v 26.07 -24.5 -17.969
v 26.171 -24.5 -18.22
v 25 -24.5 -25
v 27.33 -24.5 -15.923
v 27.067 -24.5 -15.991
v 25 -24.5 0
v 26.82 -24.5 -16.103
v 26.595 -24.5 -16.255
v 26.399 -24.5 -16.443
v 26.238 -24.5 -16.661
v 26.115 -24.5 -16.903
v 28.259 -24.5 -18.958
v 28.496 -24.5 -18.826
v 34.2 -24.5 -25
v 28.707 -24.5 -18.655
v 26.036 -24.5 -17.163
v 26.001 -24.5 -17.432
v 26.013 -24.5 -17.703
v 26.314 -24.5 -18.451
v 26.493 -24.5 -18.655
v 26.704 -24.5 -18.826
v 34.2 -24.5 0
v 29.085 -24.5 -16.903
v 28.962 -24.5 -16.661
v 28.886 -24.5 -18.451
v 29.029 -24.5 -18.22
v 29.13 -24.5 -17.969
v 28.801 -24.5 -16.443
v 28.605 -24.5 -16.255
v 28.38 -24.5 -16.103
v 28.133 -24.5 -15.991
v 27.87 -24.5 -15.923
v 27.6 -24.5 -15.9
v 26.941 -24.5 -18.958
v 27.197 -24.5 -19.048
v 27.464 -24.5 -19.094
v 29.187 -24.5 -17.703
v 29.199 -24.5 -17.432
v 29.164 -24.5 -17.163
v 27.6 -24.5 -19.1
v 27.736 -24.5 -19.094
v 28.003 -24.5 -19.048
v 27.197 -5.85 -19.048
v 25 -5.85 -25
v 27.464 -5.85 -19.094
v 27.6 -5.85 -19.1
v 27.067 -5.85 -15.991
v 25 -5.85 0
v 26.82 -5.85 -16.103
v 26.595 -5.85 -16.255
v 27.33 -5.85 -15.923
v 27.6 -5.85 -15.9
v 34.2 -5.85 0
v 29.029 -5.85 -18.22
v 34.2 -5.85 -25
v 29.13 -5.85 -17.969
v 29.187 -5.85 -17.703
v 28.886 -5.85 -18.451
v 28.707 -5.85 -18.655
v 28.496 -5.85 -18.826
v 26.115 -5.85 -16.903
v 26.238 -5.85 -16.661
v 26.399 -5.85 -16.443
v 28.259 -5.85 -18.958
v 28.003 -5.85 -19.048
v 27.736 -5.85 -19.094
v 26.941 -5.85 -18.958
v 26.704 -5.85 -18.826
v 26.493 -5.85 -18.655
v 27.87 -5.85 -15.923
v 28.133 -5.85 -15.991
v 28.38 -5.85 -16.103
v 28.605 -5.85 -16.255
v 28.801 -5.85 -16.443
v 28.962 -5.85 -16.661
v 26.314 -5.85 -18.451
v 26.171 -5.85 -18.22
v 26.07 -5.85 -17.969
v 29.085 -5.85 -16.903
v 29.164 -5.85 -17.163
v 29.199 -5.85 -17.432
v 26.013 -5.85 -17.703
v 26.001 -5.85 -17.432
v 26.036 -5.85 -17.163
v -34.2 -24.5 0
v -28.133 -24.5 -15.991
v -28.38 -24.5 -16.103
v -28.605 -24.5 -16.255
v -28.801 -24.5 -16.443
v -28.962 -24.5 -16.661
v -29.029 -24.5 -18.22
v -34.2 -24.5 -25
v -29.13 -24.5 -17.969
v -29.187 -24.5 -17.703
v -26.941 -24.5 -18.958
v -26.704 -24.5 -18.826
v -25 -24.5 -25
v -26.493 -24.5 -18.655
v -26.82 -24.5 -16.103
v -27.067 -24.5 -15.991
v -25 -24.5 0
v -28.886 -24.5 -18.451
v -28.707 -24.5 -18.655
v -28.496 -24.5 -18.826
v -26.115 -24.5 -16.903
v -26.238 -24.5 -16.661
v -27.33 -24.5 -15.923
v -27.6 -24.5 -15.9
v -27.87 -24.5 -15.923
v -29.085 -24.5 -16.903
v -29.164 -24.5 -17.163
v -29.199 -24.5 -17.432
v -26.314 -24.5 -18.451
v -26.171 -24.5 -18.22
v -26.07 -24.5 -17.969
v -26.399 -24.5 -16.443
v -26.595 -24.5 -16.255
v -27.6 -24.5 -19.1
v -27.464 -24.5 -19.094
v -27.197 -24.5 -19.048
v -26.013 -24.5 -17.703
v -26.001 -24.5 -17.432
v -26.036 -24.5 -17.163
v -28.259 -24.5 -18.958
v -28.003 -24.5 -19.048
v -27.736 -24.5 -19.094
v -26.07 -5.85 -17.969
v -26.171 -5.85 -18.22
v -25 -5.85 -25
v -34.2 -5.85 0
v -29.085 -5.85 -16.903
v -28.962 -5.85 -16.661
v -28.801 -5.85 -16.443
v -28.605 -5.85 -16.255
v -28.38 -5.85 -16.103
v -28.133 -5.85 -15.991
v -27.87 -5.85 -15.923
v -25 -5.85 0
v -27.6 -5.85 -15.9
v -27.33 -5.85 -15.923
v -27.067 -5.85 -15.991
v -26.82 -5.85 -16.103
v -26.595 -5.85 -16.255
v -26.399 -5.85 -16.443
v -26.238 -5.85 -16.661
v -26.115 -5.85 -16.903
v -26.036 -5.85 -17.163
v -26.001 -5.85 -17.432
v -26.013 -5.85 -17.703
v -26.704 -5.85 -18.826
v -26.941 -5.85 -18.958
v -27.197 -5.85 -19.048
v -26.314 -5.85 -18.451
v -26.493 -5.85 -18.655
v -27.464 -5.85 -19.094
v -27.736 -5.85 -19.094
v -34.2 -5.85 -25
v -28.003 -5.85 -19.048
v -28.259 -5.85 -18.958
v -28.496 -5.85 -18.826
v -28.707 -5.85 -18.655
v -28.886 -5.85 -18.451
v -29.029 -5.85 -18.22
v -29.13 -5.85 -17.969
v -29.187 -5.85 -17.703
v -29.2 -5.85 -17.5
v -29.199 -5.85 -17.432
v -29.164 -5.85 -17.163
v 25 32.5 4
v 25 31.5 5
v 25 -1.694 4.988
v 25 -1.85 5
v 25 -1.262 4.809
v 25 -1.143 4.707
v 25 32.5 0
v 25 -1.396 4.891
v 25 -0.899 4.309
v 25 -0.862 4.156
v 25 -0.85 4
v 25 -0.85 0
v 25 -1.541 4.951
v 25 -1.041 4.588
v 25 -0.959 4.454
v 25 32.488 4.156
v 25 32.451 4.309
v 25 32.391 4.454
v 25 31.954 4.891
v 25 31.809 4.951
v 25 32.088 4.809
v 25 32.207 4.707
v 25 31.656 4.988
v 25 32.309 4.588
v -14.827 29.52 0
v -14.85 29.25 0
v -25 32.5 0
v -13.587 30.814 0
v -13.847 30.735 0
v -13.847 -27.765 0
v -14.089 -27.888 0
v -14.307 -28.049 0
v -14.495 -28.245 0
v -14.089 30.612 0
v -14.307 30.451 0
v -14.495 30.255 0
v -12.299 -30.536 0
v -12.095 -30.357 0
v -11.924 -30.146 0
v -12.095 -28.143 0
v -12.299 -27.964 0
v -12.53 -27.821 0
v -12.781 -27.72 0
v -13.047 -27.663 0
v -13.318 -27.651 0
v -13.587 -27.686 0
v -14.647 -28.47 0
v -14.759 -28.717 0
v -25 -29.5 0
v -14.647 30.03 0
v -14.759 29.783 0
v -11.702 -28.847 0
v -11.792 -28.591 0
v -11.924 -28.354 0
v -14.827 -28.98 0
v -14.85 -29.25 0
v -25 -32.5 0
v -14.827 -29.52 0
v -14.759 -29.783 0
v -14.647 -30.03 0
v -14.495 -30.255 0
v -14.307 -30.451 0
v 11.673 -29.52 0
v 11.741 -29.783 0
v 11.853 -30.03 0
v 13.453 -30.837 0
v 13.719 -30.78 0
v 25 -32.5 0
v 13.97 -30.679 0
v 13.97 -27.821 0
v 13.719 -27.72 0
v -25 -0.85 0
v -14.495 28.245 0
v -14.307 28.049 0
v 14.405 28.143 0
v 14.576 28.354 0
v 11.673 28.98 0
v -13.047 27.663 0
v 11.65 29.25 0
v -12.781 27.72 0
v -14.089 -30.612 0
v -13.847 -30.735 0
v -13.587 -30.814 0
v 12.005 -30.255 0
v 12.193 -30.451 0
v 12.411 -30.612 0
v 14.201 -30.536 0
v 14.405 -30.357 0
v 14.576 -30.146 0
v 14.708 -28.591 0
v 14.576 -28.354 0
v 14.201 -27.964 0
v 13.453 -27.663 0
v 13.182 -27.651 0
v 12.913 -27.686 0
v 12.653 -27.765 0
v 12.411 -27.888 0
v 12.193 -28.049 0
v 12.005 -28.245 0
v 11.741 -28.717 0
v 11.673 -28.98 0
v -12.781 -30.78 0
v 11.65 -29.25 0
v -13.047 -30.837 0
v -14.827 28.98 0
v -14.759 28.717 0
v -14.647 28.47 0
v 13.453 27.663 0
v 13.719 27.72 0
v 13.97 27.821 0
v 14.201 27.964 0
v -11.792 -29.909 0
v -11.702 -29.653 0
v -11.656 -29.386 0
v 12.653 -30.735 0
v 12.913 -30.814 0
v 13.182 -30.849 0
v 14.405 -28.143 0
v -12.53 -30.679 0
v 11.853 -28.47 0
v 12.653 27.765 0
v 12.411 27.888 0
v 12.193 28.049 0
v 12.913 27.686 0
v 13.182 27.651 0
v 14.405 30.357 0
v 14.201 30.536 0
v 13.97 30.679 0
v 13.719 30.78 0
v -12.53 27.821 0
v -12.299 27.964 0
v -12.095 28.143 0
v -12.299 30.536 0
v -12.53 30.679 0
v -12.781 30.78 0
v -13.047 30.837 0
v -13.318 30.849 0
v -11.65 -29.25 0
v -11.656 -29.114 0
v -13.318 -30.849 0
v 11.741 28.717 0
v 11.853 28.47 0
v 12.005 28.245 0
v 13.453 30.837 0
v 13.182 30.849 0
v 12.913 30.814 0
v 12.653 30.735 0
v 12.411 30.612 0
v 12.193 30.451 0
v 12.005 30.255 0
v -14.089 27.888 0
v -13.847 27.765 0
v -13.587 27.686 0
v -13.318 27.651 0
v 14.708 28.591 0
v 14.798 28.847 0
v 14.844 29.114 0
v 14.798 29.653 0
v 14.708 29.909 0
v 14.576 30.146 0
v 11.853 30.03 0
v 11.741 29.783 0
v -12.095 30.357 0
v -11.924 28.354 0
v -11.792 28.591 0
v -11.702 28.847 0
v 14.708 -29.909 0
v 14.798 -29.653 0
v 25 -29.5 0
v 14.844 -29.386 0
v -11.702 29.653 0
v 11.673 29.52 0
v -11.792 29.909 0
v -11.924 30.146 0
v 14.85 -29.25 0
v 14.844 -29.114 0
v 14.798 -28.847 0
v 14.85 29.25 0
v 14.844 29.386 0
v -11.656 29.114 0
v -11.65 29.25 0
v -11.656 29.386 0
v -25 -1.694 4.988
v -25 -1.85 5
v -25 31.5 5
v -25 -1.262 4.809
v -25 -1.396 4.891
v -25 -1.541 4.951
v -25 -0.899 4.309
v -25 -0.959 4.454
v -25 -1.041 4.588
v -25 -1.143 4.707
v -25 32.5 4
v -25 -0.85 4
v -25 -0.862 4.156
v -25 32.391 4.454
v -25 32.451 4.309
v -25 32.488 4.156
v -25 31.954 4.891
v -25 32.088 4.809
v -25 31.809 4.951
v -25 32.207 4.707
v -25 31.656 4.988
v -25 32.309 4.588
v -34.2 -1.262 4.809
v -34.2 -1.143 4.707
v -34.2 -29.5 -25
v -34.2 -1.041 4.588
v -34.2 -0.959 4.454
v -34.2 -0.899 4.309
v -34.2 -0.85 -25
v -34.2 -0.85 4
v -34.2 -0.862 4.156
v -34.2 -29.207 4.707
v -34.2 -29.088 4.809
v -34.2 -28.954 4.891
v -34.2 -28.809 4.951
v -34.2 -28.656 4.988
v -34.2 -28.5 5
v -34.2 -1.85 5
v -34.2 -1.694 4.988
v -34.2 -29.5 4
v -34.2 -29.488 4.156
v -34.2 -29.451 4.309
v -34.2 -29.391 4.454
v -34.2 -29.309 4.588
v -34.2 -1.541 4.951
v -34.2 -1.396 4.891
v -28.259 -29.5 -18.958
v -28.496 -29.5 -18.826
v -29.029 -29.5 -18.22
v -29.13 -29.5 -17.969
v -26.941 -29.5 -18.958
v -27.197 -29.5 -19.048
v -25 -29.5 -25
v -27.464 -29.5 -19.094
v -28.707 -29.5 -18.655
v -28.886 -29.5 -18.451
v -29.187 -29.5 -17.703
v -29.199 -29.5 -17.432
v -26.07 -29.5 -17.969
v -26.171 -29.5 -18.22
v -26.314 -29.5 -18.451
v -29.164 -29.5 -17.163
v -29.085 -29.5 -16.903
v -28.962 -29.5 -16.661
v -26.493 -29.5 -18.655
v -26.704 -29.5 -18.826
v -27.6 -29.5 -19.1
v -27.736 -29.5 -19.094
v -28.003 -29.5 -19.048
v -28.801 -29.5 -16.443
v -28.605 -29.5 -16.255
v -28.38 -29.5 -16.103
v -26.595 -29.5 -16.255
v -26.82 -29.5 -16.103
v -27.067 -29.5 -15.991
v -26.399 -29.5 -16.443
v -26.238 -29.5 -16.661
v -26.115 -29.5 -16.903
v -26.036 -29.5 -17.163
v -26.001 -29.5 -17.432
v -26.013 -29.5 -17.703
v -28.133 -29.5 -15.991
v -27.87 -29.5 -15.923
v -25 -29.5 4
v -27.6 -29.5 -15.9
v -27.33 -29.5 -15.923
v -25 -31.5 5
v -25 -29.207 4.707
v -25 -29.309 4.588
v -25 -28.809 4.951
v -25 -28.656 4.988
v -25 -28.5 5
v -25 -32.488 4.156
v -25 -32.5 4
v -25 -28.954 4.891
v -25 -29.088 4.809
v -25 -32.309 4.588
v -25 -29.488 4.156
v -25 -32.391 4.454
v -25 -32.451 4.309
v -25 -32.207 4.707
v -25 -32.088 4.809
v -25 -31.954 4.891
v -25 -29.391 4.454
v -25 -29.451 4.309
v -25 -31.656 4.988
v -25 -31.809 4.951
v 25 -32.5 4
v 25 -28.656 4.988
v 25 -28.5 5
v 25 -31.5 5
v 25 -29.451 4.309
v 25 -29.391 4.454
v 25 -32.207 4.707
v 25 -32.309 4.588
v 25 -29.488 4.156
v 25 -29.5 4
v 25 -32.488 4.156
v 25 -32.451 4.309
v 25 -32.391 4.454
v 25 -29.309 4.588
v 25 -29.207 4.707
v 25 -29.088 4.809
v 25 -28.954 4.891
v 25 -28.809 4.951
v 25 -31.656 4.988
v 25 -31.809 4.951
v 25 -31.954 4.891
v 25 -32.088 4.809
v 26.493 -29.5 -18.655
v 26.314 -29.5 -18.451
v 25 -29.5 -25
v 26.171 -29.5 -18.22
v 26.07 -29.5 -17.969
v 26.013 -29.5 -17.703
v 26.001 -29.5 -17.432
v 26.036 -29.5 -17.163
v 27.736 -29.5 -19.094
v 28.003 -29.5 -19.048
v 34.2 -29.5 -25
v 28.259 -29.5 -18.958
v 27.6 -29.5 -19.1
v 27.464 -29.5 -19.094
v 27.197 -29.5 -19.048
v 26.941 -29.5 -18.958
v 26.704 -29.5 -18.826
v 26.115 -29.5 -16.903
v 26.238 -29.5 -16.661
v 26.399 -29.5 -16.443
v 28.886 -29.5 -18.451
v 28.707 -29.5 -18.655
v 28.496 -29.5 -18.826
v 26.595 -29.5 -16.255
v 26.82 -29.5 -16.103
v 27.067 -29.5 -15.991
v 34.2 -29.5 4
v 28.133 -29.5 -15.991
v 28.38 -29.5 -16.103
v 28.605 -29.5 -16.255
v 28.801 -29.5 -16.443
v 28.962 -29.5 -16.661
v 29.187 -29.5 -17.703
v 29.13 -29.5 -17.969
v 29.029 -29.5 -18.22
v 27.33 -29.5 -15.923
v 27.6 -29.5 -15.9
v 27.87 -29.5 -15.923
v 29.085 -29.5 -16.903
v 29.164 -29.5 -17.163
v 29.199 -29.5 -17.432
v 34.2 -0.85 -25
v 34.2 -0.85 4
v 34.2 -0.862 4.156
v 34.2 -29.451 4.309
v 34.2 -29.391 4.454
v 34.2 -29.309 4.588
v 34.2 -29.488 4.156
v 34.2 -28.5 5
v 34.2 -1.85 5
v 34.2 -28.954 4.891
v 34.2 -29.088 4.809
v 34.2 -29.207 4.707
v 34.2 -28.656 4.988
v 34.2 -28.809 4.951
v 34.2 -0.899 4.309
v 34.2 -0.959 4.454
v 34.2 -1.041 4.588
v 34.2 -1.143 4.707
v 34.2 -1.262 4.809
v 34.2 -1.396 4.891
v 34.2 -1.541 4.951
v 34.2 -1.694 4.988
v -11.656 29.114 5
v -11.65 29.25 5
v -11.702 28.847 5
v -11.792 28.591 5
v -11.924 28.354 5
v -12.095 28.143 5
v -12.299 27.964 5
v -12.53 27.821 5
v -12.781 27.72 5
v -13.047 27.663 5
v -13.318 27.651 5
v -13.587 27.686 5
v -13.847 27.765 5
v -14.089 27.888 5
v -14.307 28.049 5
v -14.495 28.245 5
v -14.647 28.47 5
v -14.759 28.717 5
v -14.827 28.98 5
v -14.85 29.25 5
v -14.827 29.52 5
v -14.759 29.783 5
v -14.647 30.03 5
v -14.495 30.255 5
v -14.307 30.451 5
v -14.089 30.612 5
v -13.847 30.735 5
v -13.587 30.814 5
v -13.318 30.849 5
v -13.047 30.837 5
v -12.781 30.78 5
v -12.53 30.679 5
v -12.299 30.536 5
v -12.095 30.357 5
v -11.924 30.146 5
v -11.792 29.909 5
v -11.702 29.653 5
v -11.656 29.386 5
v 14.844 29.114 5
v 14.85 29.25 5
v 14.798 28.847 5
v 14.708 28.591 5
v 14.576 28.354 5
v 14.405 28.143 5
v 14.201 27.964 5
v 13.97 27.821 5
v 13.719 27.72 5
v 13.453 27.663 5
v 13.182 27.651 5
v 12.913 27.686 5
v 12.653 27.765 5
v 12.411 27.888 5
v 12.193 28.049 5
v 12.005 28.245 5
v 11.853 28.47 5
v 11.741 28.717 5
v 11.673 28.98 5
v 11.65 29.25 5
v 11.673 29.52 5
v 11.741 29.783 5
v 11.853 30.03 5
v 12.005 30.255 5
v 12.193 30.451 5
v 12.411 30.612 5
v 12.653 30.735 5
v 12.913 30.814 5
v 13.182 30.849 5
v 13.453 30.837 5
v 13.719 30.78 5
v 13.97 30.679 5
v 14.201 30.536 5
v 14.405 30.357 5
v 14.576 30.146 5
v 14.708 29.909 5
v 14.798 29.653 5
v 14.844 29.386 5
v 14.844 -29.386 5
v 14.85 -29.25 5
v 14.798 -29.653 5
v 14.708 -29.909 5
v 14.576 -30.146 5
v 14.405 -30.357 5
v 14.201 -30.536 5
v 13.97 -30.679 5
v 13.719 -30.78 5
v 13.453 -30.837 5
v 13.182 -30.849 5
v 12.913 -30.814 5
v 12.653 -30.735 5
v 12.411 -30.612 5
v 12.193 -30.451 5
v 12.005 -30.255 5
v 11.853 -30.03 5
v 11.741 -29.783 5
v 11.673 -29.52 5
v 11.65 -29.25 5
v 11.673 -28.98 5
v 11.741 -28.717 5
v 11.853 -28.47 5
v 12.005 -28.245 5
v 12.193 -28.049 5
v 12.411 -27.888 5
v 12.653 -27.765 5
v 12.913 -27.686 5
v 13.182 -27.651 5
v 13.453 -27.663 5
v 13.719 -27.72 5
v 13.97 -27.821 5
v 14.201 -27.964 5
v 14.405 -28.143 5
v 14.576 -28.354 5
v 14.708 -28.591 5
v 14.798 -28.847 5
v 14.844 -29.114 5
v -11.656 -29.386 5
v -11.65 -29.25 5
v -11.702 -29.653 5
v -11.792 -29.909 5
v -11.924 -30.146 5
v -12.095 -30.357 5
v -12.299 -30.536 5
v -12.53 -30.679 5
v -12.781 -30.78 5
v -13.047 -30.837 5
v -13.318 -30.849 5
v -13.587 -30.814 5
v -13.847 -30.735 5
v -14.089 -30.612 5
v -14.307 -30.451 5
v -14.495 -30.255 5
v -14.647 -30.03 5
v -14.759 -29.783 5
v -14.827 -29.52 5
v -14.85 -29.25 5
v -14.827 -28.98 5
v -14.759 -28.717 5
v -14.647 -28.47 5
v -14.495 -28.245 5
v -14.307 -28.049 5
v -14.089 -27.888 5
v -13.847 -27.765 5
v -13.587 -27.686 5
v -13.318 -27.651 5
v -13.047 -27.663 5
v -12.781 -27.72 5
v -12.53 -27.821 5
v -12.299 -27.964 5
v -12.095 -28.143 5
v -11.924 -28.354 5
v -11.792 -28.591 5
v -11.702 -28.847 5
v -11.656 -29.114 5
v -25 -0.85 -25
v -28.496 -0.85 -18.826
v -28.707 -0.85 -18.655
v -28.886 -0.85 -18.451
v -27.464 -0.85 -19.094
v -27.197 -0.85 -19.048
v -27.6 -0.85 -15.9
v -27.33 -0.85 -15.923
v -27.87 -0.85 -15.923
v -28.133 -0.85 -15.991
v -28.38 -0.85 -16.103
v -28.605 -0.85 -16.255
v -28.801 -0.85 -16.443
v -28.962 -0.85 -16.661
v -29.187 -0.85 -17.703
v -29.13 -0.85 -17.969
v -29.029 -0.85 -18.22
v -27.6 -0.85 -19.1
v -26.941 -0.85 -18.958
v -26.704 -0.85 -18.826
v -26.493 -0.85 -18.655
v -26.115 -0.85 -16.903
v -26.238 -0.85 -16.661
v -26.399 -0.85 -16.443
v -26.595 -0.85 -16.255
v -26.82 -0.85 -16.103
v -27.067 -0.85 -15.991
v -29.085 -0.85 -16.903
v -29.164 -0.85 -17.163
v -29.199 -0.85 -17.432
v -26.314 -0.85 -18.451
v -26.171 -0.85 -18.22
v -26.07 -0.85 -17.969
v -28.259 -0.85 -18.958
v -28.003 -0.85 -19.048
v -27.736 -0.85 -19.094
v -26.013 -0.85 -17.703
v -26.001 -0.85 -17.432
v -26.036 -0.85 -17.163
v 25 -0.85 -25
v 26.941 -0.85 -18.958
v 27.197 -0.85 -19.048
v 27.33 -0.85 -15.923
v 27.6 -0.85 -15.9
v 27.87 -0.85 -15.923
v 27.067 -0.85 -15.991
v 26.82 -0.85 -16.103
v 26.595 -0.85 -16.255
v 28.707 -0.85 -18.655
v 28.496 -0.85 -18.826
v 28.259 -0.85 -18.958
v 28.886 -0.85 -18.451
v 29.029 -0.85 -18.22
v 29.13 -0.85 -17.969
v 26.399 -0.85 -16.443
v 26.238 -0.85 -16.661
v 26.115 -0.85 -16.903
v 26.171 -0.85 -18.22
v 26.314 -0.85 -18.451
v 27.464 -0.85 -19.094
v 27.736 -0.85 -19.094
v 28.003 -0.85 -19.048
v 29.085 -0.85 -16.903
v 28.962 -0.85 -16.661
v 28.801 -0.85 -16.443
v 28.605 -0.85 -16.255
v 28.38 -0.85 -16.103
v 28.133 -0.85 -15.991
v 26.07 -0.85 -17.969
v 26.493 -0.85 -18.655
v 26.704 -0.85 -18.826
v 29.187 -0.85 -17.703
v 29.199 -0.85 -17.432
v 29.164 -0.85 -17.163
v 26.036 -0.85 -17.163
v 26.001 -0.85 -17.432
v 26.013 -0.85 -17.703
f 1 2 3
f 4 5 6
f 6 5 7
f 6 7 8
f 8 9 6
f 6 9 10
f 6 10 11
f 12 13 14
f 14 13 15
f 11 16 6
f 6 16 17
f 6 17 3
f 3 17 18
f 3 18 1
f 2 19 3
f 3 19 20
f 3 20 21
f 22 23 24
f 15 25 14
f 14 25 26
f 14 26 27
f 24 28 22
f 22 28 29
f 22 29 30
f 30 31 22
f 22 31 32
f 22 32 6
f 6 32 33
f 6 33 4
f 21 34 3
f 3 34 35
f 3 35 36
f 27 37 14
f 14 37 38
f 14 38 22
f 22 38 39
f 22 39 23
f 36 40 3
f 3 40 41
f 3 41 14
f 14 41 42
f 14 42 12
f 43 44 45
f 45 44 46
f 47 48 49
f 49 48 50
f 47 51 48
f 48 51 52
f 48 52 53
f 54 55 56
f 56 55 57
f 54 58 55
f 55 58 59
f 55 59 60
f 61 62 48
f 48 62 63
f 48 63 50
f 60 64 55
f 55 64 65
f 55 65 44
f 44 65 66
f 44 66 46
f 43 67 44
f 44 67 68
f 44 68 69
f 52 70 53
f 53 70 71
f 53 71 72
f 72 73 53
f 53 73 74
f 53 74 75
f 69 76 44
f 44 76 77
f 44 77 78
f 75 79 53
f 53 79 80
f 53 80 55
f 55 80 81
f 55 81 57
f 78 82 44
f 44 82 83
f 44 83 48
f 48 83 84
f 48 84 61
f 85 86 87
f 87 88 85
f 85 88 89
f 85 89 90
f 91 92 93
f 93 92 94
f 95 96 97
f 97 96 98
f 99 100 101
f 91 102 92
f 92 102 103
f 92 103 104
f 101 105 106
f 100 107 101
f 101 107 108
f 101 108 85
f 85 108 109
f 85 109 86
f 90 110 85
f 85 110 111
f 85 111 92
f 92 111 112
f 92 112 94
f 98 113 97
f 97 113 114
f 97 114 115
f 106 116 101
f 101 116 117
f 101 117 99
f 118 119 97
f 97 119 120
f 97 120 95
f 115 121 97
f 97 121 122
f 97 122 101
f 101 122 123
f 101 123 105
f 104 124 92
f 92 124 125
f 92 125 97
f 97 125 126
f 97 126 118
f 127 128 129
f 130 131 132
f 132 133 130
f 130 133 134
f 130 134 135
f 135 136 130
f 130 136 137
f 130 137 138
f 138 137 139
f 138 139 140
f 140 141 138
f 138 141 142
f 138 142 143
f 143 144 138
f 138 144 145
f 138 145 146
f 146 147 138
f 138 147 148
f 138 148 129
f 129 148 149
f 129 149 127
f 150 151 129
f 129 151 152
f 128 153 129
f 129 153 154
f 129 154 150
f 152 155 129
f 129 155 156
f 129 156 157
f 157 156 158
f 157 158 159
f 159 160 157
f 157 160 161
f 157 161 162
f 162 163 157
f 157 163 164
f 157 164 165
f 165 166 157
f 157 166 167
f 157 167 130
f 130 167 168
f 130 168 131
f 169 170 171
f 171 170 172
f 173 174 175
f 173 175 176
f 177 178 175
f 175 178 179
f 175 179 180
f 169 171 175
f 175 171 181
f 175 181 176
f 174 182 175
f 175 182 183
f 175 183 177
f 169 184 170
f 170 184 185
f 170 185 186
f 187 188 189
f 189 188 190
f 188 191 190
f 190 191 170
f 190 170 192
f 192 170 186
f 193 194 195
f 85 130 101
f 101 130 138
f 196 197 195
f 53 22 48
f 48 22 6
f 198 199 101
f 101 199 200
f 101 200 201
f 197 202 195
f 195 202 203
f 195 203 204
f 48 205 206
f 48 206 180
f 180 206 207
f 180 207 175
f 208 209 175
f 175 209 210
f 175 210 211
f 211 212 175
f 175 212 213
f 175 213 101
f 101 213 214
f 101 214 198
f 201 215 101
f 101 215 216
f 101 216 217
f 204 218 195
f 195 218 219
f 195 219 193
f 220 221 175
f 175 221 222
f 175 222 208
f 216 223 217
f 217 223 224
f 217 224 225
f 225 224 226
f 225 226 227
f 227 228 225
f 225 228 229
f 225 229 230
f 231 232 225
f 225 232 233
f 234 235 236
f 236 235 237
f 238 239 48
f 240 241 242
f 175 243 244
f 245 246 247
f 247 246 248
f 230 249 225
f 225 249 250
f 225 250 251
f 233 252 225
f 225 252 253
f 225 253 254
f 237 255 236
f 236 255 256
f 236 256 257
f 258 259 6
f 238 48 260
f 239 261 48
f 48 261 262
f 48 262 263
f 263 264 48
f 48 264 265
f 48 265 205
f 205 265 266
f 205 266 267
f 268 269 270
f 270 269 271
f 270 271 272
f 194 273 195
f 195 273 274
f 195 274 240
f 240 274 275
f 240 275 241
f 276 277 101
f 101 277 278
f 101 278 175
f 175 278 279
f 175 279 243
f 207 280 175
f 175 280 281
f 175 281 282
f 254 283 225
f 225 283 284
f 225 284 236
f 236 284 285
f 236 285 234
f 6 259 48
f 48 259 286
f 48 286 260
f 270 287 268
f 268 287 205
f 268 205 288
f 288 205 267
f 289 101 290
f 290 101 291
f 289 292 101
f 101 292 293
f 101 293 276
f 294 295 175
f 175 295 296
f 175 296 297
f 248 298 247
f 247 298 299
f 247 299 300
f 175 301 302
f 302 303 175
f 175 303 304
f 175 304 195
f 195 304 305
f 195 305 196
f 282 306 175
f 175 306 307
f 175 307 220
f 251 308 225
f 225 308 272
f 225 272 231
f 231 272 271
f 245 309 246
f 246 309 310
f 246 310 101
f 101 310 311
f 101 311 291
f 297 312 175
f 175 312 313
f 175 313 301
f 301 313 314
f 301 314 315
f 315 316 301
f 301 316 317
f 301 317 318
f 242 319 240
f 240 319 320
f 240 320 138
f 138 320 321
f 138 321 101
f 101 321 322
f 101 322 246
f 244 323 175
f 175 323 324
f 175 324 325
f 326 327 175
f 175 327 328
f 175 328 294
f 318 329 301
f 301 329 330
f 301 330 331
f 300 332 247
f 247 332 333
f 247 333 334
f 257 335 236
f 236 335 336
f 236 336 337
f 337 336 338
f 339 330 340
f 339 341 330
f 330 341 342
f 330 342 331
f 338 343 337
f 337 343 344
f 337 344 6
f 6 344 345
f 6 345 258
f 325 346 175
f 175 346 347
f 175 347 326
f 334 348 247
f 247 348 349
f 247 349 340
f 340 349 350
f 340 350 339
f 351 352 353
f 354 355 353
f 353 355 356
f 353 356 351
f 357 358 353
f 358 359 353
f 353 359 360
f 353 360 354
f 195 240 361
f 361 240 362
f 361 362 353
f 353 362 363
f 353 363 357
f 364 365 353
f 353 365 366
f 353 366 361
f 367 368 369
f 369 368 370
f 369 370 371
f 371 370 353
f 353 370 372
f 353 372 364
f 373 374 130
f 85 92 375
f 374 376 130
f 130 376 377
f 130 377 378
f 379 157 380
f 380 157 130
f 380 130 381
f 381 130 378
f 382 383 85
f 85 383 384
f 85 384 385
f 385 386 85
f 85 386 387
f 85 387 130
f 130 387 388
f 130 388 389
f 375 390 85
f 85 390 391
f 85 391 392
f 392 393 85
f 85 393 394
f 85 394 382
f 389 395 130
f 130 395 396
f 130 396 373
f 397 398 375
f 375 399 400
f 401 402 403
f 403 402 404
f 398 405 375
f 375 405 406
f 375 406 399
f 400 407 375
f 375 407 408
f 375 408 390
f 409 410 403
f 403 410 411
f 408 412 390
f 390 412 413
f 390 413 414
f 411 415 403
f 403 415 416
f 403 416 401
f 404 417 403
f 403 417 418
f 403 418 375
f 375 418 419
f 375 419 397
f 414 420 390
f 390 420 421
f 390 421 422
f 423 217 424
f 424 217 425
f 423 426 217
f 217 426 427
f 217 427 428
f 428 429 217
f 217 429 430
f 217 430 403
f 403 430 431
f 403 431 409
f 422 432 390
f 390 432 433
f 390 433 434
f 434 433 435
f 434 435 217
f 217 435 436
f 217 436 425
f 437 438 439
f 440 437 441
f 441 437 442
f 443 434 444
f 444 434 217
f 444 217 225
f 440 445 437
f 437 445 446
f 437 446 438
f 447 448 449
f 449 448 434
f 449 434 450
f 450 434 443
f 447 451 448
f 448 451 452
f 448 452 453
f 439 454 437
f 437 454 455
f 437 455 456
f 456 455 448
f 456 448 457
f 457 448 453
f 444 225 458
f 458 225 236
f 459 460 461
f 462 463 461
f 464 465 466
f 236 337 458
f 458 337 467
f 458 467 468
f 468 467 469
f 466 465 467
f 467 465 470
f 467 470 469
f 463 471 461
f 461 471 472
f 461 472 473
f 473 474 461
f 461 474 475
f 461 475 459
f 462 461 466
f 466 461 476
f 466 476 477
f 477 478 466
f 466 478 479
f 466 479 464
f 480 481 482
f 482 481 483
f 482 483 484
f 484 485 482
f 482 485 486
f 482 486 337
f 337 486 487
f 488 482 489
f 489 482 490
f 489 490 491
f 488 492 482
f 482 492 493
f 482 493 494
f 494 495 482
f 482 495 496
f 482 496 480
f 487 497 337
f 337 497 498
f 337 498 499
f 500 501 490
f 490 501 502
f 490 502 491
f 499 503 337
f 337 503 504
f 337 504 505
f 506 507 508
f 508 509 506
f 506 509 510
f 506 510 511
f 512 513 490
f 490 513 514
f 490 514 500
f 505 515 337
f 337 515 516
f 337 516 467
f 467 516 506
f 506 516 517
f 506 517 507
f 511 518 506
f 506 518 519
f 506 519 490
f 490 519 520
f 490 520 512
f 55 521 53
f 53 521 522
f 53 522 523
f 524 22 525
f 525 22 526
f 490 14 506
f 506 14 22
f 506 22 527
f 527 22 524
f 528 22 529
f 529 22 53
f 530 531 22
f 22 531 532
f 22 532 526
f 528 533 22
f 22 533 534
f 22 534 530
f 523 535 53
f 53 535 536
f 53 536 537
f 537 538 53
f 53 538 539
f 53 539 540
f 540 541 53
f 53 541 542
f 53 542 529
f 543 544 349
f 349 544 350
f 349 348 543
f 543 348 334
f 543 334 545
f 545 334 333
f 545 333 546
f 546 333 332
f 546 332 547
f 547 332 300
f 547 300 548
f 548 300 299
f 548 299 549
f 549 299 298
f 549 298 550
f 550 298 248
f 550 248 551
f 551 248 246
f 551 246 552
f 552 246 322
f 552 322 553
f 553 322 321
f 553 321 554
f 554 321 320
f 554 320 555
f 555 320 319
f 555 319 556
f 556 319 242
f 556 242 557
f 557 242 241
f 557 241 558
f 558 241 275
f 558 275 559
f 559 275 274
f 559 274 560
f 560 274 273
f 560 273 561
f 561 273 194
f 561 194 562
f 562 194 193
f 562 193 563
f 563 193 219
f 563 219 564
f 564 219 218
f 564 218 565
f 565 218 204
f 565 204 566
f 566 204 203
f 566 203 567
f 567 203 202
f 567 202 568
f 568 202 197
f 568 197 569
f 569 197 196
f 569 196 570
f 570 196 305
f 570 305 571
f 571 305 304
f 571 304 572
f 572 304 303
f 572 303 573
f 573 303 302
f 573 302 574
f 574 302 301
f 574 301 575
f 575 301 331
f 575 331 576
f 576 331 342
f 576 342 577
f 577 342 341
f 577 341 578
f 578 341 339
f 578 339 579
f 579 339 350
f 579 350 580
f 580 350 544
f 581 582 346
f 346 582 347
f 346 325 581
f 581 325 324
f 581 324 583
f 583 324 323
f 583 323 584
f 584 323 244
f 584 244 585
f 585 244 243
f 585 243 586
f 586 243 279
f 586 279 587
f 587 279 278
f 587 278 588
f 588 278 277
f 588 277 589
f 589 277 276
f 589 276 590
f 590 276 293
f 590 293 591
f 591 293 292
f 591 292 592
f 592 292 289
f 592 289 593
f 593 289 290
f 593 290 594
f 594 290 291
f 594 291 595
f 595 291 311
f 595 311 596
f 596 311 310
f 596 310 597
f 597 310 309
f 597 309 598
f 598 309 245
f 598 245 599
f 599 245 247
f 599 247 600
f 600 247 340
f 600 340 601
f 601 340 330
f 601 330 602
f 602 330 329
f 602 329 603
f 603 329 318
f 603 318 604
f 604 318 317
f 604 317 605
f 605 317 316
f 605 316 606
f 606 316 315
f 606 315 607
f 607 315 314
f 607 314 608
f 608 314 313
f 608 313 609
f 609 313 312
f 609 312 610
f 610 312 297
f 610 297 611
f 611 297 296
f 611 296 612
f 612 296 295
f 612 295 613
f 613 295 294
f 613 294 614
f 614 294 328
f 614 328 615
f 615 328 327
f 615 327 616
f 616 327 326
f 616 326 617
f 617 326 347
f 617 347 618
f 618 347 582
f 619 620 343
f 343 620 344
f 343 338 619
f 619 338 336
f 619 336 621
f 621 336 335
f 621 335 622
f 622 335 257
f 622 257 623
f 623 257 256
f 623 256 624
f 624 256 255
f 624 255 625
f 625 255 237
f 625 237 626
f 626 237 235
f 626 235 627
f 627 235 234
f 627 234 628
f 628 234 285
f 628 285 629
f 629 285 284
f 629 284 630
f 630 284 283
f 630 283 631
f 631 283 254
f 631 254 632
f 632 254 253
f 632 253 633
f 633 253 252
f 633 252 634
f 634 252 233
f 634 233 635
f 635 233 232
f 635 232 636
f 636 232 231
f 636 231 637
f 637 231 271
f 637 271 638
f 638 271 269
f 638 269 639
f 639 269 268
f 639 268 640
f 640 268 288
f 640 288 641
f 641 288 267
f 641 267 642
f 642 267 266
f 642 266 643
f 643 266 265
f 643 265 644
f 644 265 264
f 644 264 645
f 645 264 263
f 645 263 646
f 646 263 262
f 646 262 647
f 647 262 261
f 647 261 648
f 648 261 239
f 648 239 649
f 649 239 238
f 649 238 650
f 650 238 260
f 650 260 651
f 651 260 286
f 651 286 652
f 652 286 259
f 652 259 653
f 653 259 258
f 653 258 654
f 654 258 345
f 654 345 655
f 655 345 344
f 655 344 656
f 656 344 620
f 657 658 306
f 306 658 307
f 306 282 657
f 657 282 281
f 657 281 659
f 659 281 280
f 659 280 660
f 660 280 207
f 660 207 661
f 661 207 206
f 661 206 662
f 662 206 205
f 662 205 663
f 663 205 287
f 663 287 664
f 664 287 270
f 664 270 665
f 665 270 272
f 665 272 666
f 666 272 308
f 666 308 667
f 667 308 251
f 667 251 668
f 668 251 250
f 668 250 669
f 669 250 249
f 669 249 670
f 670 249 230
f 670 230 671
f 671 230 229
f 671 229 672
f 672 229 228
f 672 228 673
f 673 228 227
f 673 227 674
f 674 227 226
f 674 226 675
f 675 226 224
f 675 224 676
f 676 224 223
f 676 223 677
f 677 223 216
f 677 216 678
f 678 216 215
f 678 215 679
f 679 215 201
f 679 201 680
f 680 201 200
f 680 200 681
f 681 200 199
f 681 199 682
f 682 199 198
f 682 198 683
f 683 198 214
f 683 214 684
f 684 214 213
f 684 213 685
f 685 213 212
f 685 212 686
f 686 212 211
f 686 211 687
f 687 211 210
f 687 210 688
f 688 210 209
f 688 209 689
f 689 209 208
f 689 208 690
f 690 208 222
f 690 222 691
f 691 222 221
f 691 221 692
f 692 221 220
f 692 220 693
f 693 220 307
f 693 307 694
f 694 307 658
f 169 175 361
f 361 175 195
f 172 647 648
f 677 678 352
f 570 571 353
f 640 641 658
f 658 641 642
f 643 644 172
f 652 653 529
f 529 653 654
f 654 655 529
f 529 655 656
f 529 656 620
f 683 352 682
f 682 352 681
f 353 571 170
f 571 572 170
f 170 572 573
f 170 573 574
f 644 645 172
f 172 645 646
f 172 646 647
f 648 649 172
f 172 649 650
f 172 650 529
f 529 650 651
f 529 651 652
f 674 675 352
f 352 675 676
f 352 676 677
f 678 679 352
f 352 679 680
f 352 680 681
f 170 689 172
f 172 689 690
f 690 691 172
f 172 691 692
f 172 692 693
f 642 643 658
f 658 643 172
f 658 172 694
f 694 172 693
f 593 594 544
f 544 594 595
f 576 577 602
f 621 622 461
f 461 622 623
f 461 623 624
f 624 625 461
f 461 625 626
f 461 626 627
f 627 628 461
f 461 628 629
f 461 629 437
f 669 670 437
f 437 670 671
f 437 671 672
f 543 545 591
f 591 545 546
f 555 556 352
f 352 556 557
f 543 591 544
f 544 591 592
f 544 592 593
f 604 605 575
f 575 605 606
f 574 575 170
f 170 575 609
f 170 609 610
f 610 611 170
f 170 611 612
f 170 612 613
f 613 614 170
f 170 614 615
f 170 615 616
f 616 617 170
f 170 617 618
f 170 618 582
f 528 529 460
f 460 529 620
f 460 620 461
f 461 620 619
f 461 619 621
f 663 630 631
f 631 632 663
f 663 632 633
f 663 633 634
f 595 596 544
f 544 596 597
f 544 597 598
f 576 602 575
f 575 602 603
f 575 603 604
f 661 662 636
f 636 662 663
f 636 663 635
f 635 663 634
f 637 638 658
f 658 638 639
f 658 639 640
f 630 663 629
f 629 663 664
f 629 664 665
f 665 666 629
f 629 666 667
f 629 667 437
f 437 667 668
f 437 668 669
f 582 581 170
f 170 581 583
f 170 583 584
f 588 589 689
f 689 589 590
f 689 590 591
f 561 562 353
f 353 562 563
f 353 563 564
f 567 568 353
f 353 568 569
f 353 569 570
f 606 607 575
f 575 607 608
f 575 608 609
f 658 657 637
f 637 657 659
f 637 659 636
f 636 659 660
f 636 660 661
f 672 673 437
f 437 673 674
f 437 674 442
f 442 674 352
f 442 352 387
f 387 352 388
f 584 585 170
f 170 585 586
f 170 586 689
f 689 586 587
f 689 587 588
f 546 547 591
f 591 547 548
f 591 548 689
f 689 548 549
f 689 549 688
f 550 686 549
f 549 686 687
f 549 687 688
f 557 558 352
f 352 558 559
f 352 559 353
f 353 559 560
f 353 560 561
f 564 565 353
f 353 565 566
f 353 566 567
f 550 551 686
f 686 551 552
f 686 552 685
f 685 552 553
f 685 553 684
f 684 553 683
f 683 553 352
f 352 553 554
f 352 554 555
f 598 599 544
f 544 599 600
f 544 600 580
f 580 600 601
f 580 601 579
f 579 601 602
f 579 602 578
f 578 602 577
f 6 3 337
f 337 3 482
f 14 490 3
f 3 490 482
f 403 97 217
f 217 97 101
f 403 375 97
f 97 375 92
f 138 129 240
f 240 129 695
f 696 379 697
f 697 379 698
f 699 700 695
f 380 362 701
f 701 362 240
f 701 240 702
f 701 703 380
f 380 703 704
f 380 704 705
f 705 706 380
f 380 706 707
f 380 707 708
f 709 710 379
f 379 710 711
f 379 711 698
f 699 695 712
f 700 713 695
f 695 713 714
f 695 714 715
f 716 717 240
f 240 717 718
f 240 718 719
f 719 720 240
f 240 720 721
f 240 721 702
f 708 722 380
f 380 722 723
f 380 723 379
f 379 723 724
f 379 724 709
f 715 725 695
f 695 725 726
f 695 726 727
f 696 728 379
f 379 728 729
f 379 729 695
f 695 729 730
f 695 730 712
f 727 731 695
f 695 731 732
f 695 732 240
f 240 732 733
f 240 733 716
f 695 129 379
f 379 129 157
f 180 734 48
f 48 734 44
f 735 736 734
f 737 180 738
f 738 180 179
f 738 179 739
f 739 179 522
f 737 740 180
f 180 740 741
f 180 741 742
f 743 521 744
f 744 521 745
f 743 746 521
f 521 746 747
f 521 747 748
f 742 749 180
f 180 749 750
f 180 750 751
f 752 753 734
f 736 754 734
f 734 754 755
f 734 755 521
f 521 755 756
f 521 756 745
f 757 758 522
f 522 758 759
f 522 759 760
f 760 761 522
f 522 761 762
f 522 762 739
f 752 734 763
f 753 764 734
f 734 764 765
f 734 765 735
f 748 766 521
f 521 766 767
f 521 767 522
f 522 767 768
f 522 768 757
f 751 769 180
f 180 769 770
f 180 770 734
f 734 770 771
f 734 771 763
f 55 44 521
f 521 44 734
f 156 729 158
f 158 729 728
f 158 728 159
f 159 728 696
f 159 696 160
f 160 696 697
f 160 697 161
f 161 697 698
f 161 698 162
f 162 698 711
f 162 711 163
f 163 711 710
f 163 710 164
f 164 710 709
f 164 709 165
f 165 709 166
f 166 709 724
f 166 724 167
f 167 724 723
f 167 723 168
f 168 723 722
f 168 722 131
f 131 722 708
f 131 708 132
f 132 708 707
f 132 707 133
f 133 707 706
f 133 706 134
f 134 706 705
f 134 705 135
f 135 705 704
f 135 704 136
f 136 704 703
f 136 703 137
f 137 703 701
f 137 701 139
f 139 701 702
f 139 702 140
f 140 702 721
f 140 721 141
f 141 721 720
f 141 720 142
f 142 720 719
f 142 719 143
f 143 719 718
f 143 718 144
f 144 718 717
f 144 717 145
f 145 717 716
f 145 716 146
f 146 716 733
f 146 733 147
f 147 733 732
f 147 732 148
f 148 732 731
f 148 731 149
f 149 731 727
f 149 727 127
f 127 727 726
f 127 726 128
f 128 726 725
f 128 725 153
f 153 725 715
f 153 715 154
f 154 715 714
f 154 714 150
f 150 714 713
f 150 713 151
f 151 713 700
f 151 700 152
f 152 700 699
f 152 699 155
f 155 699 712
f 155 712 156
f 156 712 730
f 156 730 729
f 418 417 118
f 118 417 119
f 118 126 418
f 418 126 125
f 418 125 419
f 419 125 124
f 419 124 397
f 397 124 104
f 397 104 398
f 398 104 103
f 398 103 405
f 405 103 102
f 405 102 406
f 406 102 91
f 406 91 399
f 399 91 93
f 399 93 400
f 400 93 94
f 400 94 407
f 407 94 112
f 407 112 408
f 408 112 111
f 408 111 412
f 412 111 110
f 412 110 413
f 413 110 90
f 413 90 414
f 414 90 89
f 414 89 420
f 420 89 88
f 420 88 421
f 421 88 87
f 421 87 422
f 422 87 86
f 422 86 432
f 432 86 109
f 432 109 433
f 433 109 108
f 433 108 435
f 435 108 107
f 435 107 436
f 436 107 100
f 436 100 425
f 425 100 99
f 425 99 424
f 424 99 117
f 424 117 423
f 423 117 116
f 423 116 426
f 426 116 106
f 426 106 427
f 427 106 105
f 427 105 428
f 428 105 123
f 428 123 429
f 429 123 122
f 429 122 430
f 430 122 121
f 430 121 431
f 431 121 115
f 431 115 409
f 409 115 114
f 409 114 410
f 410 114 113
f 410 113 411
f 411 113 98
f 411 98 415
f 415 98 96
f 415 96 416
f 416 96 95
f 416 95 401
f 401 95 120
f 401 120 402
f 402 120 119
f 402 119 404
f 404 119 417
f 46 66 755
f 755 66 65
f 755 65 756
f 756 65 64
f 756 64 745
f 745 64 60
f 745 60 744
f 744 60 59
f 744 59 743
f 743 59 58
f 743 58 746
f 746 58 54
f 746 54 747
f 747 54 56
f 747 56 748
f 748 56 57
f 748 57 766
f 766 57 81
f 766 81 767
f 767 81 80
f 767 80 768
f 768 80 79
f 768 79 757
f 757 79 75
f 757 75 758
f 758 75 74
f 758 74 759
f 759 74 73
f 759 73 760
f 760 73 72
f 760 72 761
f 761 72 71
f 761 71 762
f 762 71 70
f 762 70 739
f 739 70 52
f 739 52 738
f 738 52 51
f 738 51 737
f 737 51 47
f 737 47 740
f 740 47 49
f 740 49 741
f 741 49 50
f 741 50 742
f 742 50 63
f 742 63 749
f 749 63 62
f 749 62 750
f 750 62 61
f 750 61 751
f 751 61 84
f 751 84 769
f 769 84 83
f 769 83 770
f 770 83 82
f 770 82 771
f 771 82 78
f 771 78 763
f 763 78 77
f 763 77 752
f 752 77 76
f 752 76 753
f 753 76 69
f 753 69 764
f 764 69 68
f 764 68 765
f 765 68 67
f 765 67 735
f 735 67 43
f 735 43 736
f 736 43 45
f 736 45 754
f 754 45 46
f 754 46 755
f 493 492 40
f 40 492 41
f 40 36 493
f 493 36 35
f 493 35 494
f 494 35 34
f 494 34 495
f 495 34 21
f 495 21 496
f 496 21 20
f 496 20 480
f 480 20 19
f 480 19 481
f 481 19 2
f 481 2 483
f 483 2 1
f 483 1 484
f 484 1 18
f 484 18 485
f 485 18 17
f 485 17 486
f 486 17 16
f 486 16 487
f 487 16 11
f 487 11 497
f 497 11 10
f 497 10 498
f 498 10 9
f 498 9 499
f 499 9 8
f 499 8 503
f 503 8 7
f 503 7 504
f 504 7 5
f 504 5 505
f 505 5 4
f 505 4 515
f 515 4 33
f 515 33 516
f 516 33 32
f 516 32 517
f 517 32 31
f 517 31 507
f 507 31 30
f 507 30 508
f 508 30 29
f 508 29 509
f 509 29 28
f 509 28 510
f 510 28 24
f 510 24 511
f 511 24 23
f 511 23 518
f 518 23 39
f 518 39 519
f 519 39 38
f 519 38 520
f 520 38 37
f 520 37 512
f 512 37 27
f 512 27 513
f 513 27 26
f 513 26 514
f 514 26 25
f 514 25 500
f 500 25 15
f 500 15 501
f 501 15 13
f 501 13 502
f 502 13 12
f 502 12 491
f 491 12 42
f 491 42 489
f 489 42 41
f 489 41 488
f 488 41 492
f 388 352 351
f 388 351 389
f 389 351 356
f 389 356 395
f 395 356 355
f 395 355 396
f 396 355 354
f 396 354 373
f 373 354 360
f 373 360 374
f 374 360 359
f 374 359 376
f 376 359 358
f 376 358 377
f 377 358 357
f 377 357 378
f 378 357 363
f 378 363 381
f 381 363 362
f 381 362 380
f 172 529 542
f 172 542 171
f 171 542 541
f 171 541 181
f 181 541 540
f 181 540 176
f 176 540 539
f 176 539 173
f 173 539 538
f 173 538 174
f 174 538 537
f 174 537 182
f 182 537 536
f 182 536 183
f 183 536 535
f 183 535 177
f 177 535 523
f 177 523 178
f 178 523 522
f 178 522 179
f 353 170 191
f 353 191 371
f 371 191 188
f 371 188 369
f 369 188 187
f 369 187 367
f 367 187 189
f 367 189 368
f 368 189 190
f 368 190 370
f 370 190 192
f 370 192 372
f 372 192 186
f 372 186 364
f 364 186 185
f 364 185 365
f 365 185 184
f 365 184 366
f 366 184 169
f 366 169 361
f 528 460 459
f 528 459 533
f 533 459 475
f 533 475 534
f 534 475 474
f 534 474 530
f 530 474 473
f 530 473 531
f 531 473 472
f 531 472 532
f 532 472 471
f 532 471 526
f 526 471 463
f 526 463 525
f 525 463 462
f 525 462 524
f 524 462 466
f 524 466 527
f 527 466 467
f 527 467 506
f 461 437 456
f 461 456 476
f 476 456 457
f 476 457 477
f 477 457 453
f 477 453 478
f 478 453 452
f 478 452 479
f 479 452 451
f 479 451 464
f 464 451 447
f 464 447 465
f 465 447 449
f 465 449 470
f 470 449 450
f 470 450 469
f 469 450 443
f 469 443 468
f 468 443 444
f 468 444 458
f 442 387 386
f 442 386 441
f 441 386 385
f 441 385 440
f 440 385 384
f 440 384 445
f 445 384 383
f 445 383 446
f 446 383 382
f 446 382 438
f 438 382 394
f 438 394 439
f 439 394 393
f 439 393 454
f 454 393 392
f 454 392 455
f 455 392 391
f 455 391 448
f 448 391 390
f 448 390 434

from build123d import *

# Parameters (mm, degrees)
SKETCH2_W                = 50
SKETCH2_H                = 65
SKETCH2_R                = 1.6
SKETCH2_W_2              = 9.2
SKETCH2_H_2              = 5
BOSS_EXTRUDE1_DEPTH      = 5
SKETCH3_W                = 9.2
SKETCH3_H                = 5
BOSS_EXTRUDE2_DEPTH      = 25
BOSS_EXTRUDE2_DEPTH_BACK = 5
SKETCH4_R                = 1.6
CUT_EXTRUDE1_DEPTH       = 32.65
SKETCH5_W                = 9.2
SKETCH5_H                = 18.65
BOSS_EXTRUDE3_DEPTH      = 5
FILLET1_R                = 1


with BuildPart() as part:
    # Sketch2 → Boss-Extrude1 (new body)
    with BuildSketch(Plane.XY):
        Rectangle(SKETCH2_W, SKETCH2_H)
        with Locations((-13.25, -29.25)):
            Circle(SKETCH2_R, mode=Mode.SUBTRACT)
        with Locations((13.25, -29.25)):
            Circle(SKETCH2_R, mode=Mode.SUBTRACT)
        with Locations((13.25, 29.25)):
            Circle(SKETCH2_R, mode=Mode.SUBTRACT)
        with Locations((-13.25, 29.25)):
            Circle(SKETCH2_R, mode=Mode.SUBTRACT)
        with Locations((29.6, -27)):
            Rectangle(SKETCH2_W_2, SKETCH2_H_2)
        with BuildLine():
            Line((25, -29.5), (25, -24.5))
            Line((25, -24.5), (-25, -24.5))
            Line((-25, -24.5), (-25, -29.5))
            Line((-25, -29.5), (-14.830348063, -29.5))
            ThreePointArc((-14.830348063, -29.5), (-13.375385604, -27.65492055), (-11.65, -29.25))
            ThreePointArc((-11.65, -29.25), (-11.65492055, -29.375385604), (-11.669651937, -29.5))
            Line((-11.669651937, -29.5), (11.669651937, -29.5))
            ThreePointArc((11.669651937, -29.5), (13.124614396, -27.65492055), (14.85, -29.25))
            ThreePointArc((14.85, -29.25), (14.84507945, -29.375385604), (14.830348063, -29.5))
            Line((14.830348063, -29.5), (25, -29.5))
        make_face()
        with Locations((-29.6, -27)):
            Rectangle(SKETCH2_W_2, SKETCH2_H_2)
        with BuildLine():
            Line((25, -32.5), (25, -29.5))
            Line((25, -29.5), (14.830348063, -29.5))
            ThreePointArc((14.830348063, -29.5), (13.25, -30.85), (11.669651937, -29.5))
            Line((11.669651937, -29.5), (-11.669651937, -29.5))
            ThreePointArc((-11.669651937, -29.5), (-13.25, -30.85), (-14.830348063, -29.5))
            Line((-14.830348063, -29.5), (-25, -29.5))
            Line((-25, -29.5), (-25, -32.5))
            Line((-25, -32.5), (25, -32.5))
        make_face()
    extrude(amount=BOSS_EXTRUDE1_DEPTH)

    # Sketch3 → Boss-Extrude2 (add, two sides)
    with BuildSketch(Plane(origin=(0, 0, 0), x_dir=(-1, 0, 0), z_dir=(0, 0, -1))) as boss_extrude2_sk:
        with Locations((-29.6, -27)):
            Rectangle(SKETCH3_W, SKETCH3_H)
        with Locations((-29.6, -3.35)):
            Rectangle(SKETCH3_W, SKETCH3_H)
        with Locations((29.6, -27)):
            Rectangle(SKETCH3_W, SKETCH3_H)
        with Locations((29.6, -3.35)):
            Rectangle(SKETCH3_W, SKETCH3_H)
    extrude(amount=BOSS_EXTRUDE2_DEPTH)
    extrude(boss_extrude2_sk.sketch, amount=-BOSS_EXTRUDE2_DEPTH_BACK)

    # Sketch4 → Cut-Extrude1 (cut, through all)
    with BuildSketch(Plane(origin=(0, -0.85, 0), x_dir=(1, 0, 0), z_dir=(0, 1, 0))):
        with Locations((27.6, 17.5)):
            Circle(SKETCH4_R)
        with Locations((-27.6, 17.5)):
            Circle(SKETCH4_R)
    extrude(amount=-CUT_EXTRUDE1_DEPTH, mode=Mode.SUBTRACT)

    # Sketch5 → Boss-Extrude3 (add)
    with BuildSketch(Plane.XY.offset(5)):
        with Locations((-29.6, -15.175)):
            Rectangle(SKETCH5_W, SKETCH5_H)
        with Locations((29.6, -15.175)):
            Rectangle(SKETCH5_W, SKETCH5_H)
    extrude(amount=-BOSS_EXTRUDE3_DEPTH)

    # Fillet1
    fillet1_edges = [part.edges().sort_by_distance(p)[0] for p in [
        (-29.6, -29.5, 5),
        (0, -32.5, 5),
        (29.6, -29.5, 5),
        (0, 32.5, 5),
        (-29.6, -0.85, 5),
        (29.6, -0.85, 5),
    ]]
    fillet(fillet1_edges, radius=FILLET1_R)


solid = part.part
